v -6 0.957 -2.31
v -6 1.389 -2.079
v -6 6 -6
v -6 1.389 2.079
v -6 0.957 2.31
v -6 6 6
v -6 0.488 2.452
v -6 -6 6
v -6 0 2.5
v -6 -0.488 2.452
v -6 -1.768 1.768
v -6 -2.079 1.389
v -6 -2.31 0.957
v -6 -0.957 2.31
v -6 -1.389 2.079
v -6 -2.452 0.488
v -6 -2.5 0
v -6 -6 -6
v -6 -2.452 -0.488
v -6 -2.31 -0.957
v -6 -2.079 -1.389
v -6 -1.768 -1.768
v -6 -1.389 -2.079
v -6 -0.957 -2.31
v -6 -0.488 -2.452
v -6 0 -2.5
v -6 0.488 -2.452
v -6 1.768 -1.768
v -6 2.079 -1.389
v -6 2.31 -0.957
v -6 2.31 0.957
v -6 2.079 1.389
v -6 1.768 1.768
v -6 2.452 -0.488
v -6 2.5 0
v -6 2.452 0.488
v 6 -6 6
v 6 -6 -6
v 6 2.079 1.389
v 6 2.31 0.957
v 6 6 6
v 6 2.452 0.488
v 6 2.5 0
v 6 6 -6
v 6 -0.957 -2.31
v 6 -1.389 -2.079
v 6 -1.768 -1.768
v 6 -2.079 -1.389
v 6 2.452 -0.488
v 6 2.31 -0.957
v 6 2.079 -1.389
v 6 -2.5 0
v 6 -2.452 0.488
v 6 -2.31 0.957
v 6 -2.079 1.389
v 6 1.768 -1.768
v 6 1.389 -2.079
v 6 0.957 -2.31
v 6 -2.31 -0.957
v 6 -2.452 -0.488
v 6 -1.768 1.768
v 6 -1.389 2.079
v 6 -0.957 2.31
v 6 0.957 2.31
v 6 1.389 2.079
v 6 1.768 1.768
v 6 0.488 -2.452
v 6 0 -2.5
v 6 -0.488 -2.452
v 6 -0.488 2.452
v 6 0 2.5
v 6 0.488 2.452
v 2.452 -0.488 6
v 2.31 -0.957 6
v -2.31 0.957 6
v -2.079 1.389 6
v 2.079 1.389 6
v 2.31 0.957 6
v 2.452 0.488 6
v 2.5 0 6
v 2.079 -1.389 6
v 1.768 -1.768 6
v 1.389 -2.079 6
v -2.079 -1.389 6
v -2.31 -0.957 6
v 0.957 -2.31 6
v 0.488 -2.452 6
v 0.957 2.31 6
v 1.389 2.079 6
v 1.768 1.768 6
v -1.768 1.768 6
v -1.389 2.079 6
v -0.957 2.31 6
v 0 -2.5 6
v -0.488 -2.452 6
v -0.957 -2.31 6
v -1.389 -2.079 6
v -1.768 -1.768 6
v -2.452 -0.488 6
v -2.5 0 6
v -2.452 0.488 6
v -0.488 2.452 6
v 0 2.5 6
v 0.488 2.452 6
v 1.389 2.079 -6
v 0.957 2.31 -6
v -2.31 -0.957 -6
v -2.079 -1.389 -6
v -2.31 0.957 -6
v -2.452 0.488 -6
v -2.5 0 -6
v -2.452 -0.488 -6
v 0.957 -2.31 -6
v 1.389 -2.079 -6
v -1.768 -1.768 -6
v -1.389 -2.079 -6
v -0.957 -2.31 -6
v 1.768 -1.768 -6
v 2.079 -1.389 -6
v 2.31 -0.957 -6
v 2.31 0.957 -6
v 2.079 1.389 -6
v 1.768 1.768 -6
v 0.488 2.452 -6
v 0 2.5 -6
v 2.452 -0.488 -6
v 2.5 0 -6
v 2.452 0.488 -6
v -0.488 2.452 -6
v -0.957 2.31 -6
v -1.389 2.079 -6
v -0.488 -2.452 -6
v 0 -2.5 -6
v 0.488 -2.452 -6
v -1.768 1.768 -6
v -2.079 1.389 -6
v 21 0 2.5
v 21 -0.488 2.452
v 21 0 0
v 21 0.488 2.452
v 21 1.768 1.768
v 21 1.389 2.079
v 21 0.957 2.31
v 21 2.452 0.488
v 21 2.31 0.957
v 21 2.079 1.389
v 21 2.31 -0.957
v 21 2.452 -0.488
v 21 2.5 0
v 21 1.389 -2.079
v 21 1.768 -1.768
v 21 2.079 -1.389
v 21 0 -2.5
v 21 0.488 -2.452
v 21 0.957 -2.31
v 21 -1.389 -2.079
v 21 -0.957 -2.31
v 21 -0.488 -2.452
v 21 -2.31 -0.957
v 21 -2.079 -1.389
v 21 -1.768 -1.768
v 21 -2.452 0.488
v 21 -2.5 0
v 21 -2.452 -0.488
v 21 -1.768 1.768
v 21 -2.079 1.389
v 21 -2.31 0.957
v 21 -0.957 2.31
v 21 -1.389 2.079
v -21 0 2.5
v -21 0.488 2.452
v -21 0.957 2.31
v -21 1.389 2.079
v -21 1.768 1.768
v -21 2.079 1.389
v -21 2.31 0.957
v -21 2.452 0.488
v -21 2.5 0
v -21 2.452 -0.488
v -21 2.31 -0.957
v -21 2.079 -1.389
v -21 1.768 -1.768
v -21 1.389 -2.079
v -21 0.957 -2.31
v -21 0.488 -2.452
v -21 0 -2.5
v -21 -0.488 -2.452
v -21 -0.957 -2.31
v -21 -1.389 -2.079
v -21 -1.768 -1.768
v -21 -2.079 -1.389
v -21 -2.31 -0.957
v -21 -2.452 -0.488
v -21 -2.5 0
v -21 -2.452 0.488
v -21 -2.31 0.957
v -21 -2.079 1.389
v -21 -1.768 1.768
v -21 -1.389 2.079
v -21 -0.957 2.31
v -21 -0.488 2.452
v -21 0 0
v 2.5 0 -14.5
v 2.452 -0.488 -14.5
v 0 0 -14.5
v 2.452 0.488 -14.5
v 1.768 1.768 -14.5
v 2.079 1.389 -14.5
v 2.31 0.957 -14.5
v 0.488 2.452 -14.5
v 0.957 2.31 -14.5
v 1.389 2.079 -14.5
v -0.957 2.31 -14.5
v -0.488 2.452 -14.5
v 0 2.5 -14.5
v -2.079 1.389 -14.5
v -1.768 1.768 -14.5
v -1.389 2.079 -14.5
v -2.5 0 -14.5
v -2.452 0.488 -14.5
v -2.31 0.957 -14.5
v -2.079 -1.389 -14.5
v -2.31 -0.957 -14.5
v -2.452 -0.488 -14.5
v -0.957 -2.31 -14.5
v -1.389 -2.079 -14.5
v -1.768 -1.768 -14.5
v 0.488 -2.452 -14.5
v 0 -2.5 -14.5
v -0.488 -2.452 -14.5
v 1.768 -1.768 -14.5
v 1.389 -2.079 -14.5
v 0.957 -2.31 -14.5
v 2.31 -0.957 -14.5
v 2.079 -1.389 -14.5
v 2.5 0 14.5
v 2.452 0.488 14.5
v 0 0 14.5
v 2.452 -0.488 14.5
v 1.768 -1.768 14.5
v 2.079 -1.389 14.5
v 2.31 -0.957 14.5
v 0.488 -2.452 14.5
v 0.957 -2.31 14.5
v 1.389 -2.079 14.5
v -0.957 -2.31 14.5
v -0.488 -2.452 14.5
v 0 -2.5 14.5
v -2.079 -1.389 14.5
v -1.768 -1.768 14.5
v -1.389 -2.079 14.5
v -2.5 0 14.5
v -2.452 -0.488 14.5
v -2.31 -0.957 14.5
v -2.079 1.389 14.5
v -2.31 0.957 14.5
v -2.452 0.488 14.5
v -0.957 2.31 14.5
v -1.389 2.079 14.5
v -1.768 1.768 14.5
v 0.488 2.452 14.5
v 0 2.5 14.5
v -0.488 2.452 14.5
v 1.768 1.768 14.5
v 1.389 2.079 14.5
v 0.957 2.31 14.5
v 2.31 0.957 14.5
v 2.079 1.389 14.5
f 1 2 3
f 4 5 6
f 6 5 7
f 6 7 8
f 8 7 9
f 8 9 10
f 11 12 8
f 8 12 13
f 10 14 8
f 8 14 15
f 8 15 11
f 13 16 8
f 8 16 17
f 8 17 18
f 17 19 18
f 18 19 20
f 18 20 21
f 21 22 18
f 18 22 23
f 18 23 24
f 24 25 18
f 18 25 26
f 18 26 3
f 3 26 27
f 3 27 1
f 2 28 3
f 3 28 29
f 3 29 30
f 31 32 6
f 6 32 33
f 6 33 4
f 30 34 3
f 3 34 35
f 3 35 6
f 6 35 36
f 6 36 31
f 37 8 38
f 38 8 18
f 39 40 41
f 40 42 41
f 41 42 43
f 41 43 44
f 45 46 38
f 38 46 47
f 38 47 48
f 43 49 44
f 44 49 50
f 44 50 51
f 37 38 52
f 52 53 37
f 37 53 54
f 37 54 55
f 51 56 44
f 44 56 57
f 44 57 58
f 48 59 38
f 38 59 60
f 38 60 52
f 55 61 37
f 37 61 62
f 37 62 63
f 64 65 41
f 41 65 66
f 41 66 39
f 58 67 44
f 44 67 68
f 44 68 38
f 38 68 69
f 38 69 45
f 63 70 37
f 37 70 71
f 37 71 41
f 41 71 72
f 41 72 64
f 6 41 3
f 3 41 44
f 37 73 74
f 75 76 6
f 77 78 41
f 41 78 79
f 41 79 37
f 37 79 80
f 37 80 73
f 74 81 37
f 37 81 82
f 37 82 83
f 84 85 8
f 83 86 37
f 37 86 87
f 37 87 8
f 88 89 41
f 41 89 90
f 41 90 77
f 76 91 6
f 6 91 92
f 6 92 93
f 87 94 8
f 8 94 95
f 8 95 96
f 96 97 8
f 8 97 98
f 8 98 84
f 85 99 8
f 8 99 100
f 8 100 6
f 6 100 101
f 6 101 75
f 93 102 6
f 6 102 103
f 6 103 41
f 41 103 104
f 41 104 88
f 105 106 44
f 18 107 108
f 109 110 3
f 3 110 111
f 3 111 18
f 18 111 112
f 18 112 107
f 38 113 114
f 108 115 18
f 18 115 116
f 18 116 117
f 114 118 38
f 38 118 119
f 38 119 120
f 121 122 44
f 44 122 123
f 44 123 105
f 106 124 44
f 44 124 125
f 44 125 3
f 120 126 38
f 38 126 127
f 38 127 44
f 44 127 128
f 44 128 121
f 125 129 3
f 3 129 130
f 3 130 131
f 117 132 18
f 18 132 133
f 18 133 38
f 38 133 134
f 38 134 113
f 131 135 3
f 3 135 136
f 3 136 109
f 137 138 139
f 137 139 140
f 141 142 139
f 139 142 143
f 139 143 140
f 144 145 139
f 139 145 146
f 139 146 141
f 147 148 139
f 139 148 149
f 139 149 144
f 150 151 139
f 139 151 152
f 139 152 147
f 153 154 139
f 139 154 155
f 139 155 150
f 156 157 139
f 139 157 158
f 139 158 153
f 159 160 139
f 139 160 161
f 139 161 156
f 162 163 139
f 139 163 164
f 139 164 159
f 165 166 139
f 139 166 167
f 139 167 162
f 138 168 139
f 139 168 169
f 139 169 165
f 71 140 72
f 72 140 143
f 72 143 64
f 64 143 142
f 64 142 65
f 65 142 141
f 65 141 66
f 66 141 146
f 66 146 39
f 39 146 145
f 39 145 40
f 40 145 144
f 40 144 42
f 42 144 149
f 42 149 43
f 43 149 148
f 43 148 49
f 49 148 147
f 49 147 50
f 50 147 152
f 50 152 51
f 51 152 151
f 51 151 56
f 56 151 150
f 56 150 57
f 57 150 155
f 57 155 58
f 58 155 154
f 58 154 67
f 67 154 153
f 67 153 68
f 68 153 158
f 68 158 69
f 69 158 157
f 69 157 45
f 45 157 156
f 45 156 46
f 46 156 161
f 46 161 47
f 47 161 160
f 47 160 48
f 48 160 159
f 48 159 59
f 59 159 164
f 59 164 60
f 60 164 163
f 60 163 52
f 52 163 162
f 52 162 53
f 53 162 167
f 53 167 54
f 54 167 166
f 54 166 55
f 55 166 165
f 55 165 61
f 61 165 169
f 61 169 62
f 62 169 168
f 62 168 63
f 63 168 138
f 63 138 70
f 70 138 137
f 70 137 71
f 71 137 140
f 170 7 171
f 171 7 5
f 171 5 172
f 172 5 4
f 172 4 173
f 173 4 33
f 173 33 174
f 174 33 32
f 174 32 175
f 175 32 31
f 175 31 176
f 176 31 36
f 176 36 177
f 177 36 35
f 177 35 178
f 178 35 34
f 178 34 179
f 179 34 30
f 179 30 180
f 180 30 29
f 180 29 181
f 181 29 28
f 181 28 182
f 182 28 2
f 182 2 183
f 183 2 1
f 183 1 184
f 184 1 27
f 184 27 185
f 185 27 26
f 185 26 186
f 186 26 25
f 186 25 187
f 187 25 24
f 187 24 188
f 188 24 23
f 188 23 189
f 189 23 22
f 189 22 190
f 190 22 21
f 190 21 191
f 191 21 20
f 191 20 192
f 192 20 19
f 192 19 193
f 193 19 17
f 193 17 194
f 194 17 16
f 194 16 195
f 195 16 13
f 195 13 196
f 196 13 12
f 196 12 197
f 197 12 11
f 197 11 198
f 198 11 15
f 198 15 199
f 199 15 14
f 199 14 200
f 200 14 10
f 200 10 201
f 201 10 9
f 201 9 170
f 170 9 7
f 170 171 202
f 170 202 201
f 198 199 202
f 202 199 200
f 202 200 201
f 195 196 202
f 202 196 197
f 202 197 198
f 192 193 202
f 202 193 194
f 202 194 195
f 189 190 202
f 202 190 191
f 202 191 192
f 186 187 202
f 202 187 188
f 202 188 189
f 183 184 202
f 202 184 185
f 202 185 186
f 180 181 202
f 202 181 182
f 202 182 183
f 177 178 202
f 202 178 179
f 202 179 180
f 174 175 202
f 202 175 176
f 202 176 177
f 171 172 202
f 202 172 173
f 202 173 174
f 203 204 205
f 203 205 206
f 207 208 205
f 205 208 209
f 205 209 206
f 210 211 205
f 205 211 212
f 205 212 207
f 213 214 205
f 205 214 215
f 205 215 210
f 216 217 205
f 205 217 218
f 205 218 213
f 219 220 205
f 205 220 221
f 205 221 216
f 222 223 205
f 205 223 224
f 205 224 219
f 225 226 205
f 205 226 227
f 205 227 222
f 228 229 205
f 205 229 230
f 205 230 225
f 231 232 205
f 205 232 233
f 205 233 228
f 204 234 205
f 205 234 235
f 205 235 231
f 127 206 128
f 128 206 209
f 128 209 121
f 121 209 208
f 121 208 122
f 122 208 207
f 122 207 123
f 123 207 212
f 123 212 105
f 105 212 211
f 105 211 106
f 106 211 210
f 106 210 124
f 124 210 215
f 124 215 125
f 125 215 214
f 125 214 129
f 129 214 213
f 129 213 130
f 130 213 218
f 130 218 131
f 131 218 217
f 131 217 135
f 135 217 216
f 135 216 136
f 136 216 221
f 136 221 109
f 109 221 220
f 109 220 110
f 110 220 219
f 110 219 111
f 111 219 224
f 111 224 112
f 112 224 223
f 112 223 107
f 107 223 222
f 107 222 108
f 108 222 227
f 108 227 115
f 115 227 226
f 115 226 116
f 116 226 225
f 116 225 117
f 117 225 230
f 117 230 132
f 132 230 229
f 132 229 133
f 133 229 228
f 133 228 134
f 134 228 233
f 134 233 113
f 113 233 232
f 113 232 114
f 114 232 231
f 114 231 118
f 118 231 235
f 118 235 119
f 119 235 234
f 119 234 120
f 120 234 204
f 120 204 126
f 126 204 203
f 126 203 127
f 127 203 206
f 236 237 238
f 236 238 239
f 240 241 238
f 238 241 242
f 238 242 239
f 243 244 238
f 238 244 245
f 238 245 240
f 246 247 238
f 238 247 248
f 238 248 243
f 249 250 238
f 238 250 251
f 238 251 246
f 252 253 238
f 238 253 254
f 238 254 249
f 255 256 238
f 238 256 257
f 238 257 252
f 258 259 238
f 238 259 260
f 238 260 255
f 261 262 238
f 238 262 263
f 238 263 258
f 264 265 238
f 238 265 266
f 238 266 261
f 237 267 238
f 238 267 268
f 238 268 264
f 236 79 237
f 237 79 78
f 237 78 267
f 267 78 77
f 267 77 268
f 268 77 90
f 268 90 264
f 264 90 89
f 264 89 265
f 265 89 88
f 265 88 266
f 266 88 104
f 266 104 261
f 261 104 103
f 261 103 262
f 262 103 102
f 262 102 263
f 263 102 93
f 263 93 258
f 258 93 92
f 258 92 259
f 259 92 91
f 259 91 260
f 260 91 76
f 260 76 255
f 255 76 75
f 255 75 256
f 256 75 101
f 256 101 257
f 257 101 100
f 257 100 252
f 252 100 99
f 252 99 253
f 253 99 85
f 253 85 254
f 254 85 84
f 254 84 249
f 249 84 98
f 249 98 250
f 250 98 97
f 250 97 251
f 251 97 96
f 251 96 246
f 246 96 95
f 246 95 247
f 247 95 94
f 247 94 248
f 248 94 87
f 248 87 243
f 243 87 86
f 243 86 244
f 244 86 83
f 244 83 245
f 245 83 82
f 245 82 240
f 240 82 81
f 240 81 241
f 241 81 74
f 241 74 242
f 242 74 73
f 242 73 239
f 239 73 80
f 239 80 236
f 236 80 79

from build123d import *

# Parameters (mm, degrees)
SKETCH1_W    = 12
SKETCH1_H    = 12
NUCLEO_DEPTH = 12
SKETCH2_W    = 42
SKETCH2_H    = 2.5
SKETCH3_W    = 29
SKETCH3_H    = 2.5


with BuildPart() as part:
    # Sketch1 → Nucleo (new body)
    with BuildSketch(Plane.XY.offset(-6)):
        Rectangle(SKETCH1_W, SKETCH1_H)
    extrude(amount=NUCLEO_DEPTH)

    # Sketch2 → Eje_flexion (revolve)
    with BuildSketch(Plane.XY, mode=Mode.PRIVATE) as eje_flexion_sk:
        with Locations((0, 1.25)):
            Rectangle(SKETCH2_W, SKETCH2_H)
    revolve(eje_flexion_sk.sketch.rotate(Axis((-25, 0, 0), (1, 0, 0)), 90), axis=Axis((-25, 0, 0), (1, 0, 0)))

    # Sketch3 → Eje_desviacion (revolve)
    with BuildSketch(Plane(origin=(0, 0, 0), x_dir=(0, 0, -1), z_dir=(1, 0, 0)), mode=Mode.PRIVATE) as eje_desviacion_sk:
        with Locations((0, 1.25)):
            Rectangle(SKETCH3_W, SKETCH3_H)
    revolve(eje_desviacion_sk.sketch.rotate(Axis((0, 0, 18.5), (0, 0, -1)), 90), axis=Axis((0, 0, 18.5), (0, 0, -1)))


solid = part.part
